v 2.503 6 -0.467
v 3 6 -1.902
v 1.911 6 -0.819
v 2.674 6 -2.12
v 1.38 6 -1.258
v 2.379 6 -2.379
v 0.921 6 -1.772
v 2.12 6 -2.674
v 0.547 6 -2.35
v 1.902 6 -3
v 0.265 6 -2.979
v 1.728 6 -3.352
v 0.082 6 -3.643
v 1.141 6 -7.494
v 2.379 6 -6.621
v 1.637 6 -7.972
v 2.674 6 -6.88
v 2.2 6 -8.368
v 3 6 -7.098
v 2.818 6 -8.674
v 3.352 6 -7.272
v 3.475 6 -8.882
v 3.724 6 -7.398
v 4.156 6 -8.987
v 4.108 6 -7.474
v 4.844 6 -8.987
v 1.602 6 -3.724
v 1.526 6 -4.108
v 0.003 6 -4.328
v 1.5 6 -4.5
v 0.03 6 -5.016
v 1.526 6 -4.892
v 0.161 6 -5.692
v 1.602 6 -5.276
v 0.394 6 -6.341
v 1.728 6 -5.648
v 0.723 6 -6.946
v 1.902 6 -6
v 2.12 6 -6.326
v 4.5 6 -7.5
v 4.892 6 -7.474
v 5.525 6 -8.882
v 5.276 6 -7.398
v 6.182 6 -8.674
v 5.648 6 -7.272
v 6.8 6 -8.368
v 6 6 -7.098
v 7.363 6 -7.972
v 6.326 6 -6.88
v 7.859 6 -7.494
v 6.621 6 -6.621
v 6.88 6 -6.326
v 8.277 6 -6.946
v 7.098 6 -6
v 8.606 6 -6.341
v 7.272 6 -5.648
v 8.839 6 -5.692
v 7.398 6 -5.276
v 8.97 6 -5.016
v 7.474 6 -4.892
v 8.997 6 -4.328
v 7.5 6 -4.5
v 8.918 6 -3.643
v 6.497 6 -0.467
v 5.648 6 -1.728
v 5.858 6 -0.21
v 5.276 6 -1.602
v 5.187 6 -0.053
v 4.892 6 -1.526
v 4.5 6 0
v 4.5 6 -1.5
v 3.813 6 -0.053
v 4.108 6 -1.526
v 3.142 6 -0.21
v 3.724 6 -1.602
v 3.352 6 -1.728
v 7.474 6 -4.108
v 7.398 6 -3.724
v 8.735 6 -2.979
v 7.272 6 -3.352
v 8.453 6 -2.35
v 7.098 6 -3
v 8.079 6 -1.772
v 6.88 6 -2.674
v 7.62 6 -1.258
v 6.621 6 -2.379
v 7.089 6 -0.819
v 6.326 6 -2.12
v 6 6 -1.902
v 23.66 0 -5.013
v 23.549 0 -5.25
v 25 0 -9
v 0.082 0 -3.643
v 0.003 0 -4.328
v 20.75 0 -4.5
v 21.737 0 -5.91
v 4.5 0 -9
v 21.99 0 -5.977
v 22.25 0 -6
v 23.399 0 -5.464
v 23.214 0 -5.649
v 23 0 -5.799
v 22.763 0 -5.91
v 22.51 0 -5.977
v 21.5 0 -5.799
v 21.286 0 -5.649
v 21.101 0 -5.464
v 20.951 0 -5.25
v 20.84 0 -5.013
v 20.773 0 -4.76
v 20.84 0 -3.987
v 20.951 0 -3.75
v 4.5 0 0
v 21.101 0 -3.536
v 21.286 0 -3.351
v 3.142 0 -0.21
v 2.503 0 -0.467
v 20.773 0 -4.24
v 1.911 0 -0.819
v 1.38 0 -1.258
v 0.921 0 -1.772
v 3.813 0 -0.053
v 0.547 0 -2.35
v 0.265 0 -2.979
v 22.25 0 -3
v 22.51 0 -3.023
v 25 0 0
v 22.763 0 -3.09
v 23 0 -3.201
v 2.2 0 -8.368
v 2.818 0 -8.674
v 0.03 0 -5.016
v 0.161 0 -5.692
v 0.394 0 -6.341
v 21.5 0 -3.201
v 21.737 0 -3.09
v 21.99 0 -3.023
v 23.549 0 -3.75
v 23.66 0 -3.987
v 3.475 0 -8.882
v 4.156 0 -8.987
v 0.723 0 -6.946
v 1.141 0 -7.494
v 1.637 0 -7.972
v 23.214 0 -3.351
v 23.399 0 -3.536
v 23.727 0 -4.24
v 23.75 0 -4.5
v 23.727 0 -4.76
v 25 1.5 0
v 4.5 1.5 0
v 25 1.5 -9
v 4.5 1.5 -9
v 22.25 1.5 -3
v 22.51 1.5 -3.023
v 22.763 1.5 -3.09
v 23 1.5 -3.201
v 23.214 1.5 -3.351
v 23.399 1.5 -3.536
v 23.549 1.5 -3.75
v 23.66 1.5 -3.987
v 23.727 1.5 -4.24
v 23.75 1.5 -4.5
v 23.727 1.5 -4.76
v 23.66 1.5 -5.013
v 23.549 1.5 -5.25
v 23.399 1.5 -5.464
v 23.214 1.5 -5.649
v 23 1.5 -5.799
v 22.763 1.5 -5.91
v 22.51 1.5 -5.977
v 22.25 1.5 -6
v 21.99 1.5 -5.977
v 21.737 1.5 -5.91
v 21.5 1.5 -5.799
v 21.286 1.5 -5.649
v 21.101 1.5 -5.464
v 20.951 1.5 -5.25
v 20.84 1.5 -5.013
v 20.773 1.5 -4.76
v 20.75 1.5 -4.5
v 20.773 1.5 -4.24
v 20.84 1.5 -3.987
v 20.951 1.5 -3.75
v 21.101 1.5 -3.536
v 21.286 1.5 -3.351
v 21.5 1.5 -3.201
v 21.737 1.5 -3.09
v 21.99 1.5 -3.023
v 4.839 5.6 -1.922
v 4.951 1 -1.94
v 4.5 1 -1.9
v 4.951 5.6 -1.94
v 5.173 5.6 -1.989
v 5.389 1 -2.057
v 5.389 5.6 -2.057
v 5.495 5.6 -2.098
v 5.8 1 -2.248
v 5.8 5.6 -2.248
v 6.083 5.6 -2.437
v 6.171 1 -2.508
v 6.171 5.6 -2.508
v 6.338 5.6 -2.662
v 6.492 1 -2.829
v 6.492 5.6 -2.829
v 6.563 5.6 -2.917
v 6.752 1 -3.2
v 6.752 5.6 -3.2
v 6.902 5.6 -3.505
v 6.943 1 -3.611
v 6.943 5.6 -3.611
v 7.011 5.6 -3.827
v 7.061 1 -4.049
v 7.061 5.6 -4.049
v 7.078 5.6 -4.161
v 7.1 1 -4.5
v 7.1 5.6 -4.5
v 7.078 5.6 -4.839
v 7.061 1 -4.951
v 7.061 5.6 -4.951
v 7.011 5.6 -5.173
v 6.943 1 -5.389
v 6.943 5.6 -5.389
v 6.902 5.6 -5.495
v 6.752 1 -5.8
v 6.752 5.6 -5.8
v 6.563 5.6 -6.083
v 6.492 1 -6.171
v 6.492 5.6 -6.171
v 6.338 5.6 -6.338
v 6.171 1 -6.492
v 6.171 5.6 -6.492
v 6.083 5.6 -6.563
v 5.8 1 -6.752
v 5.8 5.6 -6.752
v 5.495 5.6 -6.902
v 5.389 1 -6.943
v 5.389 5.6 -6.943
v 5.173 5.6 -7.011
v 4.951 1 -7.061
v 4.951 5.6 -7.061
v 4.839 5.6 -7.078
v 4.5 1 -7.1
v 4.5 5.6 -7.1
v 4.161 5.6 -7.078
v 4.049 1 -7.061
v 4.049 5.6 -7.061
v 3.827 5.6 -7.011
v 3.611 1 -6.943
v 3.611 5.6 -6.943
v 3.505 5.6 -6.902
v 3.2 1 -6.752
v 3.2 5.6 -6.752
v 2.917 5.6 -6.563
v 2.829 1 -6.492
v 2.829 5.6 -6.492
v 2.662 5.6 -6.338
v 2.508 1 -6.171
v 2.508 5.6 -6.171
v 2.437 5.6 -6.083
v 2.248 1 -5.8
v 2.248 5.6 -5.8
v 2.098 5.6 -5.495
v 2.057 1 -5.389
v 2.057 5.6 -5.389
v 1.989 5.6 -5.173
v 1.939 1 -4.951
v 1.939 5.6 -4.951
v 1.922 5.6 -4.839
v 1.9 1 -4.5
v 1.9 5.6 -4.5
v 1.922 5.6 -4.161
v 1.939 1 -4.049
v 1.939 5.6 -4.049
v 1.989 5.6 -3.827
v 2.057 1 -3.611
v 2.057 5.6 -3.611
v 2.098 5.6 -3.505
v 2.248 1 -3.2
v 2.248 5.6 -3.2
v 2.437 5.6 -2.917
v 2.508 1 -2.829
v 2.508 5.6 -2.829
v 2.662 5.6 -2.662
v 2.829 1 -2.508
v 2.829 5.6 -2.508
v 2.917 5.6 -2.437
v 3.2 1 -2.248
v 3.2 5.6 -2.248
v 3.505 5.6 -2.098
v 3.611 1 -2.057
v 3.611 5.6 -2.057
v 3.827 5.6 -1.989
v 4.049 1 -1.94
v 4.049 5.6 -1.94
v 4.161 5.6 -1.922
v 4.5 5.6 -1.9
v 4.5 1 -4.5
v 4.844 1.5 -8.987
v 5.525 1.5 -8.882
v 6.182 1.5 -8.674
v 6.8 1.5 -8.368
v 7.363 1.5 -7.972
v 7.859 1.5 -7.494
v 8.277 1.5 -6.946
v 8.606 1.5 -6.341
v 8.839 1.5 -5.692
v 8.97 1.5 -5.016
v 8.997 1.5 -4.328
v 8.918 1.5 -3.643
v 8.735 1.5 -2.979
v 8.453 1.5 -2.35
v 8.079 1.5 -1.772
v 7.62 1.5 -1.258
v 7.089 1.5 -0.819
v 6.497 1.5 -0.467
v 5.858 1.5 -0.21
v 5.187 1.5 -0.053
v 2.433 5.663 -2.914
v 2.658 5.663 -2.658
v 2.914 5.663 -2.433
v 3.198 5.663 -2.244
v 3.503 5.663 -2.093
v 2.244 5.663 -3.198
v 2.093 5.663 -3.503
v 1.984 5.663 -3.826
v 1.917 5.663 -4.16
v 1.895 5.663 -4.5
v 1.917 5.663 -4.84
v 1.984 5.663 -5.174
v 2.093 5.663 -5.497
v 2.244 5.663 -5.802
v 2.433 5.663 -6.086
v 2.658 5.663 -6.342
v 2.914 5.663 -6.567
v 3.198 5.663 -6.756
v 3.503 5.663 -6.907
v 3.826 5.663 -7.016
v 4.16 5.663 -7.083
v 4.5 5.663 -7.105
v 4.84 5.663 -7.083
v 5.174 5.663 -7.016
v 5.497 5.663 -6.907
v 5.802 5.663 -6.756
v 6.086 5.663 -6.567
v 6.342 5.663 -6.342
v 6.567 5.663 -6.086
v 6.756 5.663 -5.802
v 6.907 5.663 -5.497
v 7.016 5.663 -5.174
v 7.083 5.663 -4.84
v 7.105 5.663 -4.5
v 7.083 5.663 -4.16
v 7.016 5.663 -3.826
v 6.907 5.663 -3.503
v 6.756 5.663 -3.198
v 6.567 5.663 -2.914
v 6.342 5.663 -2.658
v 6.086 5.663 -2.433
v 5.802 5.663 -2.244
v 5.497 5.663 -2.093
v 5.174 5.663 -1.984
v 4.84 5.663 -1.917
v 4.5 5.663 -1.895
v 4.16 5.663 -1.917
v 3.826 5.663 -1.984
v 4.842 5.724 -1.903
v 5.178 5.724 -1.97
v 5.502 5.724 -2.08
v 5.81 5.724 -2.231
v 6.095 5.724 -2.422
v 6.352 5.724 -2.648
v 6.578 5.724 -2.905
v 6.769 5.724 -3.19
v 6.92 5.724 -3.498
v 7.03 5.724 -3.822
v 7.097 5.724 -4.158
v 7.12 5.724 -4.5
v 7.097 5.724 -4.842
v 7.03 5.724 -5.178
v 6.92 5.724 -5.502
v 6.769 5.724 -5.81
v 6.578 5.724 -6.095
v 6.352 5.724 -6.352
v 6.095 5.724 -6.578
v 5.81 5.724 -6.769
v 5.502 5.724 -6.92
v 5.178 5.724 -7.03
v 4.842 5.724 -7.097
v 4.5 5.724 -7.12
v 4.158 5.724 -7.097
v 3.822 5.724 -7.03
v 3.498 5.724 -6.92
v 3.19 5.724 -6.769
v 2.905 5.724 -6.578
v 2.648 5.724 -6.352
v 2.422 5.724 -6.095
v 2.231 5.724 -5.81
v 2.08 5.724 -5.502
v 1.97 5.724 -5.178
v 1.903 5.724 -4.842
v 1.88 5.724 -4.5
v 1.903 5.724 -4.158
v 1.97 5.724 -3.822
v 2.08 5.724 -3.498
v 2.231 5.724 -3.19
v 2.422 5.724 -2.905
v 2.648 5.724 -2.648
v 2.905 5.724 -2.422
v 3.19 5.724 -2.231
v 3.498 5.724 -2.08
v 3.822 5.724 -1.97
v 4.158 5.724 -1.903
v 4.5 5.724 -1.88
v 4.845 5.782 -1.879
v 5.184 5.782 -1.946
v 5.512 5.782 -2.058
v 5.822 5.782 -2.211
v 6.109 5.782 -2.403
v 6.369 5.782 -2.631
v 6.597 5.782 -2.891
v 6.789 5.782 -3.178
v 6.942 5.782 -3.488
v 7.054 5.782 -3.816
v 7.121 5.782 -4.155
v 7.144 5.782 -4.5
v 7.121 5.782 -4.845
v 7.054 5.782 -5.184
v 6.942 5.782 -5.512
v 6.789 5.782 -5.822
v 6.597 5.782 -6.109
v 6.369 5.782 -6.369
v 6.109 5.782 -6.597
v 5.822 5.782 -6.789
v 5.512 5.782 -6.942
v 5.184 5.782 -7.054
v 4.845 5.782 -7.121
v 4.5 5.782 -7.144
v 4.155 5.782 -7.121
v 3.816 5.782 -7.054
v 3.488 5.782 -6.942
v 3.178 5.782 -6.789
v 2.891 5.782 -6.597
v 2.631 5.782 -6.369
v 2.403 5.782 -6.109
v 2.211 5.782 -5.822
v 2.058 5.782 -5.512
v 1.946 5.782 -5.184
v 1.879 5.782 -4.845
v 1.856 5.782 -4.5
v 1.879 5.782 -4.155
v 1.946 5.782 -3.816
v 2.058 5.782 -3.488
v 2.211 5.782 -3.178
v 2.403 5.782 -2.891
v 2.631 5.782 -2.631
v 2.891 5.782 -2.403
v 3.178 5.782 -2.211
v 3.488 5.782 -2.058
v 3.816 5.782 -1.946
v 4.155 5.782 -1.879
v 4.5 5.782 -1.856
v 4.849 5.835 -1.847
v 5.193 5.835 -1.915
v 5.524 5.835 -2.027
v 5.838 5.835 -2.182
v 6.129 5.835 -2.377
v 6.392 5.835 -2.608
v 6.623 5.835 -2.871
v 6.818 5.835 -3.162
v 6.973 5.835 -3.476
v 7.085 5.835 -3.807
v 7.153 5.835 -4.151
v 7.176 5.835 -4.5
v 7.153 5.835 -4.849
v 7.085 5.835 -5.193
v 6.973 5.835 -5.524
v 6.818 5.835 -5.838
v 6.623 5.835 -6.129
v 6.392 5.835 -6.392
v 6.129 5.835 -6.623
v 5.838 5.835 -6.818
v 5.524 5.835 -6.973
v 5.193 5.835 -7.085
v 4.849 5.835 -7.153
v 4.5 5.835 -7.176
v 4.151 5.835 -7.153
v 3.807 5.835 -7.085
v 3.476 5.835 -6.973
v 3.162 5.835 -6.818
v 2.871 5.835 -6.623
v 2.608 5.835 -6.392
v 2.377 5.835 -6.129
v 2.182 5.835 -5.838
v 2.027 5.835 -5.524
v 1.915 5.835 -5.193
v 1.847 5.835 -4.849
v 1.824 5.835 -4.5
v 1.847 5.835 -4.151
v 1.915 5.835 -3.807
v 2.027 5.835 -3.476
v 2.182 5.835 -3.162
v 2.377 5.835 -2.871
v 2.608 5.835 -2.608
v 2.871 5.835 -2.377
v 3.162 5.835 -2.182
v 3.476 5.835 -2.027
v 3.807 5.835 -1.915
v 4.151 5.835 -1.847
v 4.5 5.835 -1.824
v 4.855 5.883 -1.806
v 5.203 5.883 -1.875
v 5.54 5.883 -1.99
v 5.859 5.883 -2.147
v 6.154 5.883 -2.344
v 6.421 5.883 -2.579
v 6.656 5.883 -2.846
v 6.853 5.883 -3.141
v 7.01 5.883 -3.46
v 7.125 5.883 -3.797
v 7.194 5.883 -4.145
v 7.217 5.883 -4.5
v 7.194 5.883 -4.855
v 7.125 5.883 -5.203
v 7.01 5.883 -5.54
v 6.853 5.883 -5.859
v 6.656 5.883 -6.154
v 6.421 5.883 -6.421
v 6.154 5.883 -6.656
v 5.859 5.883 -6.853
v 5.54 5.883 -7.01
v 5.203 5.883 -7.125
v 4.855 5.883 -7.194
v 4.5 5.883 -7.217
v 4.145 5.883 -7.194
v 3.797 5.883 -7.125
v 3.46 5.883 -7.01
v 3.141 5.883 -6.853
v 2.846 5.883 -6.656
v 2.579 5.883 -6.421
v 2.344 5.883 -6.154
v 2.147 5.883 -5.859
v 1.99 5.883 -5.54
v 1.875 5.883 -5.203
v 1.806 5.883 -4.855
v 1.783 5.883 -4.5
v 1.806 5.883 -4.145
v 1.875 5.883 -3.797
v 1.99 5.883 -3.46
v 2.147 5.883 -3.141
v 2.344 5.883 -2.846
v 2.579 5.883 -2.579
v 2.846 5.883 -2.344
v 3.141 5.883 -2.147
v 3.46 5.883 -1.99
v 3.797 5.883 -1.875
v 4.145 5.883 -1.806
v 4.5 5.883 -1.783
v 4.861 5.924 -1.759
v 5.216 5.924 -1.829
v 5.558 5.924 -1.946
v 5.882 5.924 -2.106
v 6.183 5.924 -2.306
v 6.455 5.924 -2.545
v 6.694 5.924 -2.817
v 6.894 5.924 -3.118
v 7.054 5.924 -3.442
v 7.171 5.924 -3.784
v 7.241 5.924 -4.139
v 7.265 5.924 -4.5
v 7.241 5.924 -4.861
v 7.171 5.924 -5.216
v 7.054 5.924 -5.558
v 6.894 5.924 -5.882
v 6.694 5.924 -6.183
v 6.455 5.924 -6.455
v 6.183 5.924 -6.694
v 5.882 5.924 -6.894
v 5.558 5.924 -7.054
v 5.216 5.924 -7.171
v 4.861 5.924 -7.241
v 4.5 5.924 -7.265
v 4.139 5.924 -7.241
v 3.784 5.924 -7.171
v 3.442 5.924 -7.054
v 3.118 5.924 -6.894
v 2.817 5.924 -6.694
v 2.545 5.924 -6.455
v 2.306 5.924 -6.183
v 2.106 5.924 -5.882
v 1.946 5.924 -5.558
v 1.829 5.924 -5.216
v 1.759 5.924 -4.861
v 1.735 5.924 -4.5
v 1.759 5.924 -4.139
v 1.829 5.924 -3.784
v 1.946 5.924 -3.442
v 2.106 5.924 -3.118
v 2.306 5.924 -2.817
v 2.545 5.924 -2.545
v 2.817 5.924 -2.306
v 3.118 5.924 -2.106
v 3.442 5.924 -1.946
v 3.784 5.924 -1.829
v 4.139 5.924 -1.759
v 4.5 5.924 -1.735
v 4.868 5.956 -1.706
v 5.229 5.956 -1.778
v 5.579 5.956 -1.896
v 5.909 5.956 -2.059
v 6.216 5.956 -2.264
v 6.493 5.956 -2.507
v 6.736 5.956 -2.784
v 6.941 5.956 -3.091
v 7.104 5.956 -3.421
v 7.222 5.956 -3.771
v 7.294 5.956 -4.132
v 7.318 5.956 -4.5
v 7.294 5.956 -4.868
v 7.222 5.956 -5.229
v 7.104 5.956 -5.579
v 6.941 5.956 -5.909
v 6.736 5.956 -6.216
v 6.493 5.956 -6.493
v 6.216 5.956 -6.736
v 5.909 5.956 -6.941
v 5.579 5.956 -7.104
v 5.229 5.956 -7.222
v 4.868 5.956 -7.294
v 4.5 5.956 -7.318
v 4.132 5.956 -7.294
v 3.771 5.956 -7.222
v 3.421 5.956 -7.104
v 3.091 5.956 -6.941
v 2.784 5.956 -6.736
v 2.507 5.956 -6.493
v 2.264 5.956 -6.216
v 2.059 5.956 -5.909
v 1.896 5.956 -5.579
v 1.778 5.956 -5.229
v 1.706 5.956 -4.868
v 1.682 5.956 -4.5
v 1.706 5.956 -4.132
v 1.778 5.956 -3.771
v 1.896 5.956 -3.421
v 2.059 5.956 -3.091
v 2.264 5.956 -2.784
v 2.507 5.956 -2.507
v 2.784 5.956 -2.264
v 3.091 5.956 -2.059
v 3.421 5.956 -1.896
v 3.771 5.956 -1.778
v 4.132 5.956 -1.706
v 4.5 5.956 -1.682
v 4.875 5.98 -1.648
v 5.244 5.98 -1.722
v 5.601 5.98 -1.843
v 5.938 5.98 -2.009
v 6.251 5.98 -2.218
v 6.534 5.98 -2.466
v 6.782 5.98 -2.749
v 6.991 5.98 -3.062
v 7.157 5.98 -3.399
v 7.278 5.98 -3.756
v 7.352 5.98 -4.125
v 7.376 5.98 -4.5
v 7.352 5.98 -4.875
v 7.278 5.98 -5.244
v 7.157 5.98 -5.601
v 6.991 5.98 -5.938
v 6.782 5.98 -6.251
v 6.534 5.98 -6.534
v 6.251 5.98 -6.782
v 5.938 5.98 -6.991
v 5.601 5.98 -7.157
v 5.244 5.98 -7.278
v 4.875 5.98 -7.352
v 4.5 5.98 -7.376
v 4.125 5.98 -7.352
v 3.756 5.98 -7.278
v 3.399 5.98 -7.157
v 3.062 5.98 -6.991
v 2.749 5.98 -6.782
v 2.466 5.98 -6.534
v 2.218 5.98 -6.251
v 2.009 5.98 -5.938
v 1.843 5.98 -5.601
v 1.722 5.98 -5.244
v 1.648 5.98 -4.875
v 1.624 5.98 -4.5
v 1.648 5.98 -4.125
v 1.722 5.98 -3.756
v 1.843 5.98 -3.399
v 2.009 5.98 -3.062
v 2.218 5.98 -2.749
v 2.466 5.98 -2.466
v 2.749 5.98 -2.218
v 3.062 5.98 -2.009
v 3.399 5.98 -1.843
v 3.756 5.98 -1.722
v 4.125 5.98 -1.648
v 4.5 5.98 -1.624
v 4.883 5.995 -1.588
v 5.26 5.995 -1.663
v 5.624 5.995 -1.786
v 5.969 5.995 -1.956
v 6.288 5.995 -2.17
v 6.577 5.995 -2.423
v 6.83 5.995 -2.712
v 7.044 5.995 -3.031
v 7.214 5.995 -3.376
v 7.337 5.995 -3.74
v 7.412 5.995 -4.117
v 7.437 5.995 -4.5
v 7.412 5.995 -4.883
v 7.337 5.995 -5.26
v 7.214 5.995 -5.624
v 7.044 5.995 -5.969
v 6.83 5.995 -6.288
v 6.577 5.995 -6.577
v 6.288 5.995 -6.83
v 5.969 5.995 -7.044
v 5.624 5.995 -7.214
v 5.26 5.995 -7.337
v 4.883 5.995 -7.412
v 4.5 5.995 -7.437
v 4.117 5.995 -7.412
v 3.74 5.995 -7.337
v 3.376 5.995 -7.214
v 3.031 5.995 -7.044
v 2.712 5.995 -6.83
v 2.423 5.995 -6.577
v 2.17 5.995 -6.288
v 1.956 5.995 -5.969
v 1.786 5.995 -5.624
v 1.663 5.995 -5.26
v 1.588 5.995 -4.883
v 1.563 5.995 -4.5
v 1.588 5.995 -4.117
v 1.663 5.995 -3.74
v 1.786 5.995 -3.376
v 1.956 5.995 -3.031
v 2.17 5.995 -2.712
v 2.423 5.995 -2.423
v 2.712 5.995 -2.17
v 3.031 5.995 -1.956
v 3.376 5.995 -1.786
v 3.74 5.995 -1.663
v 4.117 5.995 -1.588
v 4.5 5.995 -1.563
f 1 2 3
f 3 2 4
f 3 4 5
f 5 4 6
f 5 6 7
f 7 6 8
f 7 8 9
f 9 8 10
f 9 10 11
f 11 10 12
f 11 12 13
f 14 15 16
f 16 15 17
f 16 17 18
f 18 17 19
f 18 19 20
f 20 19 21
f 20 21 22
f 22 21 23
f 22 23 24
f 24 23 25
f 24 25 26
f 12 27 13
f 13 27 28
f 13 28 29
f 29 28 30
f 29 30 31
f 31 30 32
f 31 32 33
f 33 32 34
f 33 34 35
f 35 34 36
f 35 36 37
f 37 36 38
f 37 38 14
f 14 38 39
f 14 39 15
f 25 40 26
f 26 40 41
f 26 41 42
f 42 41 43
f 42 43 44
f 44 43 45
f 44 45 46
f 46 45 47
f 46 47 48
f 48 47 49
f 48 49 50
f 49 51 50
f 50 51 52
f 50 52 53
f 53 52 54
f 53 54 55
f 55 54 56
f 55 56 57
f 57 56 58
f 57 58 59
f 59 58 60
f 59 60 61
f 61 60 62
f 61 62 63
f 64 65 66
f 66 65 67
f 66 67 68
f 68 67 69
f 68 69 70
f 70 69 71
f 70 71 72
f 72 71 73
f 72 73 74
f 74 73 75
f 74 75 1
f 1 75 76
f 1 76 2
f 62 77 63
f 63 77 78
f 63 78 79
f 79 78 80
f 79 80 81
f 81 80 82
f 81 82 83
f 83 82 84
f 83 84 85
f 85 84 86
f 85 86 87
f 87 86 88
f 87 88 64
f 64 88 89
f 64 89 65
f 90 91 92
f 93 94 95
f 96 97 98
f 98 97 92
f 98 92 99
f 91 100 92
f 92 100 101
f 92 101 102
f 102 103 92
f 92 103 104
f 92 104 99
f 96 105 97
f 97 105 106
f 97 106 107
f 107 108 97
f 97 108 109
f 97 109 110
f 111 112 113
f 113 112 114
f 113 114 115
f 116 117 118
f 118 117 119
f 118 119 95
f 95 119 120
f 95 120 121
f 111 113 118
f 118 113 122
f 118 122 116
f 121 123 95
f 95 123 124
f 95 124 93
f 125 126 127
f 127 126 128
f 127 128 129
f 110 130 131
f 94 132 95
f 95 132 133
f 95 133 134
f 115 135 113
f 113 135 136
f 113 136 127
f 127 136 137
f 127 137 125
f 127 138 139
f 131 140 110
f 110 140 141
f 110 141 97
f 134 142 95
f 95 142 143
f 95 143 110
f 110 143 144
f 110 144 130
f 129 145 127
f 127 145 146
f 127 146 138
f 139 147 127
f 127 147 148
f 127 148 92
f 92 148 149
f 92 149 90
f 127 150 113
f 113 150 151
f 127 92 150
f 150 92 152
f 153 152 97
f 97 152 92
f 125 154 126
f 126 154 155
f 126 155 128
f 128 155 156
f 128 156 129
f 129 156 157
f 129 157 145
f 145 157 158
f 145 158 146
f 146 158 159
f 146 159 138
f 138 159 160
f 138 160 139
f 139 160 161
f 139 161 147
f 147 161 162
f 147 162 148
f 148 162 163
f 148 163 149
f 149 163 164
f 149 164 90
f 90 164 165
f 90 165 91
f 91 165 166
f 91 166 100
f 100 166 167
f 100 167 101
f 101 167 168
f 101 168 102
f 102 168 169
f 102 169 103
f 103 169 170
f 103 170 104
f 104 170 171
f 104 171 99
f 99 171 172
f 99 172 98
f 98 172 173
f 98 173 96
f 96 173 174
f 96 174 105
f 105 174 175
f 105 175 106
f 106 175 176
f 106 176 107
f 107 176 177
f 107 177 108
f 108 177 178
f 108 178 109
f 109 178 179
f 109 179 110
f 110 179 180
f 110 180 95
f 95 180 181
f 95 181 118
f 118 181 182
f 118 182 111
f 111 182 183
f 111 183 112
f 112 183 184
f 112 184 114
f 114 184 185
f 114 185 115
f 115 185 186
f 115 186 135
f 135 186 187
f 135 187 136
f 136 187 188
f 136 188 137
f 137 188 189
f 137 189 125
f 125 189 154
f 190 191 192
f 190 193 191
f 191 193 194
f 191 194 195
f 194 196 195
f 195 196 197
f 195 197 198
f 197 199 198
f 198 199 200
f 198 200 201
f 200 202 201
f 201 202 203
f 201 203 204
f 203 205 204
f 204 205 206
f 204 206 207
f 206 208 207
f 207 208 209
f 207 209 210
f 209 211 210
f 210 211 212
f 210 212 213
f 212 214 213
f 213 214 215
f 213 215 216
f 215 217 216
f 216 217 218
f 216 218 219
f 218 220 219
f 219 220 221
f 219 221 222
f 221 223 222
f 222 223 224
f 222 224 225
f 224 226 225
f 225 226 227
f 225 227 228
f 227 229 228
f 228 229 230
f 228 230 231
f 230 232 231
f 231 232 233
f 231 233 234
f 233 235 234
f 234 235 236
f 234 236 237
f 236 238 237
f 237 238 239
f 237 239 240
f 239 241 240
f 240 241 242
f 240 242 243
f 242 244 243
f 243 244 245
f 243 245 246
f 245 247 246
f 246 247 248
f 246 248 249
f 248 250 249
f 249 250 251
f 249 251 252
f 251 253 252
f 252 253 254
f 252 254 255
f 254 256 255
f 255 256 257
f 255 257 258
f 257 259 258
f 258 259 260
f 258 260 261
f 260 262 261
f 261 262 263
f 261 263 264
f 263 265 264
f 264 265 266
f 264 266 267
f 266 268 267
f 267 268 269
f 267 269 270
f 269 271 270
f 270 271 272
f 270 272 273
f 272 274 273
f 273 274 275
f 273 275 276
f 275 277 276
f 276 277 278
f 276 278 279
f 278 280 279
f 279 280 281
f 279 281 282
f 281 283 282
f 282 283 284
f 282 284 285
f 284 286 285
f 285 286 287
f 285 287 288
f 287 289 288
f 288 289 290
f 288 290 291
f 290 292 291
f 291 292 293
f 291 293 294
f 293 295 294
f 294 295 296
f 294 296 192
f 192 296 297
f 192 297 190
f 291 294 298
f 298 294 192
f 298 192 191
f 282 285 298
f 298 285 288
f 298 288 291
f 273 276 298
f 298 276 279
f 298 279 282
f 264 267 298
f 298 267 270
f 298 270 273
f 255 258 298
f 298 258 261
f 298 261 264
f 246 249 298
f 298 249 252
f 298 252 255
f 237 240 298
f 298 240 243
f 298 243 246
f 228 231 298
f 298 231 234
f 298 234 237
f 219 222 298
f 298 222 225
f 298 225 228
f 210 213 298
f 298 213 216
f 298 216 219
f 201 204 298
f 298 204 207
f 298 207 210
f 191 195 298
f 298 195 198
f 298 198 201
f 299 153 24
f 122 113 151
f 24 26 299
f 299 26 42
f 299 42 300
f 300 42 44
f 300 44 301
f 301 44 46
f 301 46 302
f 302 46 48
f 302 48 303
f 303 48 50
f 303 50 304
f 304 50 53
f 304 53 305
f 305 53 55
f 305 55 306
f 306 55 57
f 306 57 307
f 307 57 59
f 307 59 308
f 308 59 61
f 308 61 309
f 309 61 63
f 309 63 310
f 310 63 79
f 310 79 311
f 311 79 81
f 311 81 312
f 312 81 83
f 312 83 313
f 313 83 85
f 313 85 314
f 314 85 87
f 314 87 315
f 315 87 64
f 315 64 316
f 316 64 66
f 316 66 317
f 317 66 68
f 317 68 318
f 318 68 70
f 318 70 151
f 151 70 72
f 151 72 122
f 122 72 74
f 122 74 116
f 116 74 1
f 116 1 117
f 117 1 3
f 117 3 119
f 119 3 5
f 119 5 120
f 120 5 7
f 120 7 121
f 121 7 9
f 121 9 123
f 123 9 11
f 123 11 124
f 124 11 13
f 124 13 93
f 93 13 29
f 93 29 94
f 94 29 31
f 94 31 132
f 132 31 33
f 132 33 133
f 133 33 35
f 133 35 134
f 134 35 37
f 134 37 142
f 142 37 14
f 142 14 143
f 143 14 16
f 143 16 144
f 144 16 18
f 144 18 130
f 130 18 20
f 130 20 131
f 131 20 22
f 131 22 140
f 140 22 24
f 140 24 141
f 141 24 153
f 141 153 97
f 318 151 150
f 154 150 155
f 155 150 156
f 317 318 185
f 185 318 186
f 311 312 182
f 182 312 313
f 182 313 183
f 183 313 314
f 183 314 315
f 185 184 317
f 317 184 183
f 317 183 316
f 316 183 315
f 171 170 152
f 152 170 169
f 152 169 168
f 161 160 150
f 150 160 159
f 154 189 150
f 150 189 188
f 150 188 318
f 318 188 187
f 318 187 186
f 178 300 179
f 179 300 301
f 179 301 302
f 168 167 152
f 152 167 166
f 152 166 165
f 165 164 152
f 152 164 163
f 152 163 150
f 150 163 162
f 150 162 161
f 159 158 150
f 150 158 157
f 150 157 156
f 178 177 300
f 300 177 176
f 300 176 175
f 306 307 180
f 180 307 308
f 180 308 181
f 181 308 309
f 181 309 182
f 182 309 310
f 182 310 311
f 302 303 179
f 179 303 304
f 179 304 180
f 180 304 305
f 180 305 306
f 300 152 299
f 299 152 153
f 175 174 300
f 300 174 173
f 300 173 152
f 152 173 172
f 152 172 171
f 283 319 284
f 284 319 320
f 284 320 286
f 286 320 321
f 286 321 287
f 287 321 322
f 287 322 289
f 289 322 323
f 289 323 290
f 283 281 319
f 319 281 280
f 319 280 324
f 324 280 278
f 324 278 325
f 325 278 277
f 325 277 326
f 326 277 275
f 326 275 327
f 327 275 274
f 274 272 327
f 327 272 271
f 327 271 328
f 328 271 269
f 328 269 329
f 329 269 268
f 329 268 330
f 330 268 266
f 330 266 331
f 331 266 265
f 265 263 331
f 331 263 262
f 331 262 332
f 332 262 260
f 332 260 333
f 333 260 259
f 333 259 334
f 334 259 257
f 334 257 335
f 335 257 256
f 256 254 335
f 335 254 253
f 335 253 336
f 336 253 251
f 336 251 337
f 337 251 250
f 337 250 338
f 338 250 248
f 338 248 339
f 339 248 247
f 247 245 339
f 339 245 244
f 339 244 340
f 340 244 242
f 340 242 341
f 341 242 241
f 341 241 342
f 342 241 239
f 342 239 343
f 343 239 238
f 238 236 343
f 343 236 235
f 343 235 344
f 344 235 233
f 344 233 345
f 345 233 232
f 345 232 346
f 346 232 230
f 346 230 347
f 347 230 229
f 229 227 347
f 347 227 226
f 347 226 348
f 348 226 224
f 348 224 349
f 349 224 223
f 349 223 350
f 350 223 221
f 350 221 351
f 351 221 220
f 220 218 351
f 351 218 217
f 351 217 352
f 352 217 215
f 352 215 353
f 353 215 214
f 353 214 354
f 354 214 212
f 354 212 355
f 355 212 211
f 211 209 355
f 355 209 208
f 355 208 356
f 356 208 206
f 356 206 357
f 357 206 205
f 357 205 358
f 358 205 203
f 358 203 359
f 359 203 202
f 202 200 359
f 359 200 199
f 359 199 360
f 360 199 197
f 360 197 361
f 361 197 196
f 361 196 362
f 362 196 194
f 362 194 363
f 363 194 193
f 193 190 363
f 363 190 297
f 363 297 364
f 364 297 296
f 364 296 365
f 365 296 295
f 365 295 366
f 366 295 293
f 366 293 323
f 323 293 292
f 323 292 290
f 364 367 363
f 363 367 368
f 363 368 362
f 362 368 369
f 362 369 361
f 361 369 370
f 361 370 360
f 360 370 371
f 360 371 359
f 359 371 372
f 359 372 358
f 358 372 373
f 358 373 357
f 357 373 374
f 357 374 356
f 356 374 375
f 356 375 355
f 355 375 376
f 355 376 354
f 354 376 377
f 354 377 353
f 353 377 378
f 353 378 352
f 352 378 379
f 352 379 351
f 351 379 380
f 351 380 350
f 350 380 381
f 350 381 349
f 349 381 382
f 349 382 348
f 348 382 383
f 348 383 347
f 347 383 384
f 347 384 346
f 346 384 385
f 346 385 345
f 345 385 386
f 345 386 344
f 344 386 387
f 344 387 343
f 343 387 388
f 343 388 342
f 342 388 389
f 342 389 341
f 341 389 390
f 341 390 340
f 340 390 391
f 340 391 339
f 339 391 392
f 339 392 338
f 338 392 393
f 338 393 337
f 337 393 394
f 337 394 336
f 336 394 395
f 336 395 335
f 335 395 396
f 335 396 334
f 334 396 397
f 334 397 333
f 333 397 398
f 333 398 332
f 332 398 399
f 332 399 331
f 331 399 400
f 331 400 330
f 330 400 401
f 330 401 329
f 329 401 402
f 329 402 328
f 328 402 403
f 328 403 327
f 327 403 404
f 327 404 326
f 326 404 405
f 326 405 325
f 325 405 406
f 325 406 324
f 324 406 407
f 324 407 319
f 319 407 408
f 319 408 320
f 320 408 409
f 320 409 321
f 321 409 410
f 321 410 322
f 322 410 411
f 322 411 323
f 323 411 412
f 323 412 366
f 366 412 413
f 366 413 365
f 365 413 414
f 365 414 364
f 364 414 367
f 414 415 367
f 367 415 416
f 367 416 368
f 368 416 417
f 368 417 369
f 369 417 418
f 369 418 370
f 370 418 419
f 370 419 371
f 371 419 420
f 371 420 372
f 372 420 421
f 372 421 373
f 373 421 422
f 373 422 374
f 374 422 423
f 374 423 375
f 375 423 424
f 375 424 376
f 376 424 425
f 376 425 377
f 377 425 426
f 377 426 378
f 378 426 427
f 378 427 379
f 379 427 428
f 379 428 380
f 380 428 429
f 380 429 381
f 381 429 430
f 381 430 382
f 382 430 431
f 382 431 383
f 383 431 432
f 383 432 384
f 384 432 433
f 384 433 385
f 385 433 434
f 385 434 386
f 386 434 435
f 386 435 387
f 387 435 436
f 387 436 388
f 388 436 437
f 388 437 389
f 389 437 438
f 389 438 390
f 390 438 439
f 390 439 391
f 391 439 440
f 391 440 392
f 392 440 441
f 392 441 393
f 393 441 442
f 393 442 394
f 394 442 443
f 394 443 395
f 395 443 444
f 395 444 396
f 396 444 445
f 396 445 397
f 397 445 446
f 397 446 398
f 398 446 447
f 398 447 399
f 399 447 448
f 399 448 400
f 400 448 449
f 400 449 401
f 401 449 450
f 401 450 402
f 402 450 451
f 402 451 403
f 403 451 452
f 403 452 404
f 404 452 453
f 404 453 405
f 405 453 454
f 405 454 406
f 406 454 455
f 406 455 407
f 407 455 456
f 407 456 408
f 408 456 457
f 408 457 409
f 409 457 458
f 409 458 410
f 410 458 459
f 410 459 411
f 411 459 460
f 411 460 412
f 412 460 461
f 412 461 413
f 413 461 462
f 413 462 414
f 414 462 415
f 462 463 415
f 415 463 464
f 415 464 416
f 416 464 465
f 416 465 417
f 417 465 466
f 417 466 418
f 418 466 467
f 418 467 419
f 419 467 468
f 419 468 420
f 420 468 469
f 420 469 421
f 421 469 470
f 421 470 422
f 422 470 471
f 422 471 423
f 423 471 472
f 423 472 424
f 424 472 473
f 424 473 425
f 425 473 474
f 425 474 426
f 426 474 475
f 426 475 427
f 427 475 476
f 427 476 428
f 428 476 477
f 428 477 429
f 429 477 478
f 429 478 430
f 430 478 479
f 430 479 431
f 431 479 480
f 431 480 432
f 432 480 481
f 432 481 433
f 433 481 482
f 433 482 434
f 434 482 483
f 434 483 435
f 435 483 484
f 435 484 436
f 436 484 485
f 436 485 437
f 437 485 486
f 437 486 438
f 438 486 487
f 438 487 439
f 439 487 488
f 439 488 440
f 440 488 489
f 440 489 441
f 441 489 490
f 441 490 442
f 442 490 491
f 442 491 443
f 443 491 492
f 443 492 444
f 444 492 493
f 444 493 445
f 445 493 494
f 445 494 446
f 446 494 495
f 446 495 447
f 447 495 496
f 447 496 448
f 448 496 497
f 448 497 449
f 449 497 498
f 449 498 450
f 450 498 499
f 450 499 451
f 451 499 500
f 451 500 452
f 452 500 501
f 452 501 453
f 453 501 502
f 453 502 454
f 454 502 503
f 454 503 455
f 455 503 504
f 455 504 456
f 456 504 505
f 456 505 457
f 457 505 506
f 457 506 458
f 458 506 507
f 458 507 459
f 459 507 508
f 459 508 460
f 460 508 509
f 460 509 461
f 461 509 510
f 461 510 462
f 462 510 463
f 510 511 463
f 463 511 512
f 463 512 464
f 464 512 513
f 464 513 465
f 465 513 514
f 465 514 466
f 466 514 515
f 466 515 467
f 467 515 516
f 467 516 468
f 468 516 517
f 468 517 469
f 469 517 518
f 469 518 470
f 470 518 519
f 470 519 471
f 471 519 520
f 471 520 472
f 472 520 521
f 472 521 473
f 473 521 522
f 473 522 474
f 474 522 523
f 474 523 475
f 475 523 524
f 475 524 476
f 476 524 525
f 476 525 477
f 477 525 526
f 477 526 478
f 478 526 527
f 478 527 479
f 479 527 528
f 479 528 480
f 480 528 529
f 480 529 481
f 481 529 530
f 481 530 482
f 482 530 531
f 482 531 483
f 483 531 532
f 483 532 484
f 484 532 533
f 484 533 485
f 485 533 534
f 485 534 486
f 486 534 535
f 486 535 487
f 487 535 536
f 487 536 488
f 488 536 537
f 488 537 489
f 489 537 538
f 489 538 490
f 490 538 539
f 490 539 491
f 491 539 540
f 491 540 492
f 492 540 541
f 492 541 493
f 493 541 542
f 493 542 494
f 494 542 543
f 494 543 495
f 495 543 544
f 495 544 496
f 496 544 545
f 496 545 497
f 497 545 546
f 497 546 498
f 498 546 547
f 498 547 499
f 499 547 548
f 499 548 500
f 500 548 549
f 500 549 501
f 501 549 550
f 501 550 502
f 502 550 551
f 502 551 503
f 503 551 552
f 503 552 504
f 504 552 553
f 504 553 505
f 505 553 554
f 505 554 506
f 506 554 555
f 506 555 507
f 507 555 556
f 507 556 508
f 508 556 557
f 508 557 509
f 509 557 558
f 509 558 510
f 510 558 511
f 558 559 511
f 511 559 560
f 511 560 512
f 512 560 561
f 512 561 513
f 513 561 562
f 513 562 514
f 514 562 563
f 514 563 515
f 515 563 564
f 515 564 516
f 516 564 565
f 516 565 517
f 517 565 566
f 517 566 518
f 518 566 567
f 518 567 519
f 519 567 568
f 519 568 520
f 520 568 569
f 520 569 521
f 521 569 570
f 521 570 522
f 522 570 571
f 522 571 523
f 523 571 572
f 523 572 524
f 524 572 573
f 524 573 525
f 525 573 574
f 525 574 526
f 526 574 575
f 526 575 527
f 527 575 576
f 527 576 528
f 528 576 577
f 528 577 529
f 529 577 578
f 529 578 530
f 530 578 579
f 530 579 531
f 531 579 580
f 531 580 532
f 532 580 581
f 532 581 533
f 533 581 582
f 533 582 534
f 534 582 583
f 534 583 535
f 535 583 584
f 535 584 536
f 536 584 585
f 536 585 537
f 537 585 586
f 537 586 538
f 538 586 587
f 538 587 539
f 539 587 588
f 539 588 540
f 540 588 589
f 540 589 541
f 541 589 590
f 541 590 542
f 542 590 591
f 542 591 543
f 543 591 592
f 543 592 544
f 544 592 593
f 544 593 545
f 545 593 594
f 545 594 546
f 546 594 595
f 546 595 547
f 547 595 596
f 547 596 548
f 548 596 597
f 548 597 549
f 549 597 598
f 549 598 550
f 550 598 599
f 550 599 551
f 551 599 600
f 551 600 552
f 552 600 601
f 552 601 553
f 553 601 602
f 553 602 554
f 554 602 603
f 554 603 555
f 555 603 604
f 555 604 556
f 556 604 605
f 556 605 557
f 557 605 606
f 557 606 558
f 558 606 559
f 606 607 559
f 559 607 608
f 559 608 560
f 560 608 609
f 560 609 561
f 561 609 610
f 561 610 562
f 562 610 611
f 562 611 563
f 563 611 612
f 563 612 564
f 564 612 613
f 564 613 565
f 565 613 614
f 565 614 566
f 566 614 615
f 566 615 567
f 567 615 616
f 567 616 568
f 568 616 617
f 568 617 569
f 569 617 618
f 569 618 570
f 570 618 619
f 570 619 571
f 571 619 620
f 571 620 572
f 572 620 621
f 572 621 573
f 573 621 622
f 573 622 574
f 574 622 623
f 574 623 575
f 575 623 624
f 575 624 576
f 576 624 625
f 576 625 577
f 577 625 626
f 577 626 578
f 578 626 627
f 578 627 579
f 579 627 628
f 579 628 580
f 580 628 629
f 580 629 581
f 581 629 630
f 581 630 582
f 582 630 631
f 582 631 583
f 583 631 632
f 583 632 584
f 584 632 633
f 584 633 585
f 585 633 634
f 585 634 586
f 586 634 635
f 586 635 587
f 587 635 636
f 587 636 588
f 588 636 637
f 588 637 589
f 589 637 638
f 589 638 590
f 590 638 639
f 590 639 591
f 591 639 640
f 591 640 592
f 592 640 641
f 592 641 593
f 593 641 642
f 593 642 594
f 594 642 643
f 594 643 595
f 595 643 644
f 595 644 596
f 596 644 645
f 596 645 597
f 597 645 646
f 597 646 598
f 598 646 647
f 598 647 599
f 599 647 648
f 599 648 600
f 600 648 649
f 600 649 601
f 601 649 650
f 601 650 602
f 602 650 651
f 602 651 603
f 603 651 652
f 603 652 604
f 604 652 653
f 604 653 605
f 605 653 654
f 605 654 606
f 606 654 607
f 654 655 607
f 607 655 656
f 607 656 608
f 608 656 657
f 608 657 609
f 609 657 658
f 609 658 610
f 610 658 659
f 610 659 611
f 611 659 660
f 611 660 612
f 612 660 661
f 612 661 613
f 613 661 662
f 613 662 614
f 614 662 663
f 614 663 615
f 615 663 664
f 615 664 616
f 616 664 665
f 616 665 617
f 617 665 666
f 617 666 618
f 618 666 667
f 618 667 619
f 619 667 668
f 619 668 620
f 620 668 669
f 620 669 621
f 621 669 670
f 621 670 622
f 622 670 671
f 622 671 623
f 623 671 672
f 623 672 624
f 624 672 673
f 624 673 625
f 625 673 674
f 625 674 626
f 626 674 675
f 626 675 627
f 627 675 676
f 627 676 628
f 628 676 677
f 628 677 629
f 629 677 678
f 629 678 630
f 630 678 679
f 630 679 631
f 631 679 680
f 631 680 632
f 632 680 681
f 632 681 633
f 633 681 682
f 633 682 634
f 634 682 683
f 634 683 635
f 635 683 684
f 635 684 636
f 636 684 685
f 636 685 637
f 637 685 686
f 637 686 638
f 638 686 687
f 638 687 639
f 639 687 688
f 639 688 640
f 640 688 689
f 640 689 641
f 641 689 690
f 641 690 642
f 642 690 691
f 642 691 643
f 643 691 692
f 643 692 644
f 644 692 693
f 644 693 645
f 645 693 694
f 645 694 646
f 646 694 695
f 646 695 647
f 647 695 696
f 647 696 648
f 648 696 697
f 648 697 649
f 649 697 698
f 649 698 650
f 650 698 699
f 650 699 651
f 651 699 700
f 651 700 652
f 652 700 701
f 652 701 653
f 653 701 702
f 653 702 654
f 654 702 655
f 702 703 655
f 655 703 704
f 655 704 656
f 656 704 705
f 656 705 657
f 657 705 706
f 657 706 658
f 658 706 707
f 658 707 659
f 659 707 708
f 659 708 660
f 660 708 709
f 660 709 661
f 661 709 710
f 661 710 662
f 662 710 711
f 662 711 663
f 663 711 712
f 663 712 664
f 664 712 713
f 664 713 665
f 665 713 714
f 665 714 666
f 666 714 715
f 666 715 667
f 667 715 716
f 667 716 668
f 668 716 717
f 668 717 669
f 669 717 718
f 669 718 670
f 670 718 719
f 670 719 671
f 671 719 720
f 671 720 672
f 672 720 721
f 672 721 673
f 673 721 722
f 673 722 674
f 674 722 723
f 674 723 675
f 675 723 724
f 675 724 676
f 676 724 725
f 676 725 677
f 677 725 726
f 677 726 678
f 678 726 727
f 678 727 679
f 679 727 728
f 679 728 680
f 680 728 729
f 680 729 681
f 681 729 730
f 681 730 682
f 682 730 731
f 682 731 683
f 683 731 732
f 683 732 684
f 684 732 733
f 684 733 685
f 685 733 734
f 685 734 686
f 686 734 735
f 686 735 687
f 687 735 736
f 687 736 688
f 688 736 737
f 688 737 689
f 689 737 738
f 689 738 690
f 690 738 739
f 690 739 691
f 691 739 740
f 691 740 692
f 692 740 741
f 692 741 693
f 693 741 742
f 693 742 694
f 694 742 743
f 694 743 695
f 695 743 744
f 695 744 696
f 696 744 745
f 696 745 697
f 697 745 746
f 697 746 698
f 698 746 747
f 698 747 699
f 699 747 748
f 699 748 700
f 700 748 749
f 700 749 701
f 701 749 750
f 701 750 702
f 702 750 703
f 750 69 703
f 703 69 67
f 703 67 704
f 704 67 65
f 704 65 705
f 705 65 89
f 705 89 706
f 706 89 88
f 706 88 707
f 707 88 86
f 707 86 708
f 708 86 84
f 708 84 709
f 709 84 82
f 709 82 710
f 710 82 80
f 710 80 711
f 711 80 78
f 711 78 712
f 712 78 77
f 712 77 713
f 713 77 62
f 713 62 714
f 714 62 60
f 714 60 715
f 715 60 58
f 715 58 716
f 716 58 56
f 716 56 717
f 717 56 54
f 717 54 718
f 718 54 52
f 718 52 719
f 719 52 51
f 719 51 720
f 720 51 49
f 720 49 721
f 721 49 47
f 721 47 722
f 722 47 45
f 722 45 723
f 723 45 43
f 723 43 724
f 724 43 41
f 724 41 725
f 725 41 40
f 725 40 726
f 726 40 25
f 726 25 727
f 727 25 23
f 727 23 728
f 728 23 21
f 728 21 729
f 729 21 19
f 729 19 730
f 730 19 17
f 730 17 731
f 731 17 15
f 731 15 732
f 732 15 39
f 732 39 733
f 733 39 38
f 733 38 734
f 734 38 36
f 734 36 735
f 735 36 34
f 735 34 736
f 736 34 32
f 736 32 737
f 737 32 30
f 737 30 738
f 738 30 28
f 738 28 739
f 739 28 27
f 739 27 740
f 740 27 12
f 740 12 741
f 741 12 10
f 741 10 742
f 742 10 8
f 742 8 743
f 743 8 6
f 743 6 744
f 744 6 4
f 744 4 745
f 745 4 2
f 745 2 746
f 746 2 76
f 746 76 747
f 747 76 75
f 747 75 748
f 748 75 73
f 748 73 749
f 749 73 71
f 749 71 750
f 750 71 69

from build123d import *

# Parameters (mm, degrees)
SKETCH2_W               = 25
SKETCH2_H               = 9
BOSS_EXTRUDE3_DEPTH     = 6
SKETCH3_R               = 2.6
CUT_EXTRUDE1_DEPTH      = 5
CUT_EXTRUDE2_DEPTH      = 28.239676944
CUT_EXTRUDE2_DEPTH_BACK = 28.239676944
SKETCH4_R               = 1.5
SKETCH5_R               = 1.5
CUT_EXTRUDE3_DEPTH      = 4.5
CUT_EXTRUDE4_DEPTH      = 28.239676944
FILLET2_R               = 0.4


with BuildPart() as part:
    # Sketch2 → Boss-Extrude3 (new body)
    with BuildSketch(Plane(origin=(0, 0, 0), x_dir=(1, 0, 0), z_dir=(0, 1, 0))):
        with Locations((12.5, 4.5)):
            Rectangle(SKETCH2_W, SKETCH2_H)
    extrude(amount=BOSS_EXTRUDE3_DEPTH)

    # Sketch3 → Cut-Extrude1 (cut)
    with BuildSketch(Plane(origin=(0, 6, 0), x_dir=(1, 0, 0), z_dir=(0, 1, 0))):
        with Locations(Location((4.5, 4.5, 0), (0, 0, 270))):
            Circle(SKETCH3_R)
    extrude(amount=-CUT_EXTRUDE1_DEPTH, mode=Mode.SUBTRACT)

    # Sketch4 → Cut-Extrude2 (cut, two sides: drawn at the far end of the back side and taken through both)
    with BuildSketch(Plane(origin=(0, 6, 0), x_dir=(1, 0, 0), z_dir=(0, 1, 0)).offset(-CUT_EXTRUDE2_DEPTH_BACK)):
        with Locations(Location((22.25, 4.5, 0), (0, 0, 270))):
            Circle(SKETCH4_R)
    extrude(amount=CUT_EXTRUDE2_DEPTH + CUT_EXTRUDE2_DEPTH_BACK, mode=Mode.SUBTRACT)

    # Sketch5 → Cut-Extrude3 (cut)
    with BuildSketch(Plane(origin=(0, 6, 0), x_dir=(1, 0, 0), z_dir=(0, 1, 0))):
        with BuildLine():
            Line((25, 9), (4.5, 9))
            ThreePointArc((4.5, 9), (7.681980515, 7.681980515), (9, 4.5))
            ThreePointArc((9, 4.5), (7.681980515, 1.318019485), (4.5, 0))
            Line((4.5, 0), (25, 0))
            Line((25, 0), (25, 9))
        make_face()
        with Locations(Location((22.25, 4.5, 0), (0, 0, 270))):
            Circle(SKETCH5_R, mode=Mode.SUBTRACT)
    extrude(amount=-CUT_EXTRUDE3_DEPTH, mode=Mode.SUBTRACT)

    # Sketch6 → Cut-Extrude4 (cut, through all)
    with BuildSketch(Plane(origin=(0, 6, 0), x_dir=(1, 0, 0), z_dir=(0, 1, 0))):
        with BuildLine():
            ThreePointArc((0, 4.5), (1.318019485, 7.681980515), (4.5, 9))
            Line((4.5, 9), (0, 9))
            Line((0, 9), (0, 4.5))
        make_face()
        with BuildLine():
            ThreePointArc((4.5, 0), (1.318019485, 1.318019485), (0, 4.5))
            Line((0, 4.5), (0, 0))
            Line((0, 0), (4.5, 0))
        make_face()
    extrude(amount=-CUT_EXTRUDE4_DEPTH, mode=Mode.SUBTRACT)

    # Fillet2
    fillet2_edges = [part.edges().sort_by_distance(p)[0] for p in [
        (4.5, 6, -7.1),
    ]]
    fillet(fillet2_edges, radius=FILLET2_R)


solid = part.part
